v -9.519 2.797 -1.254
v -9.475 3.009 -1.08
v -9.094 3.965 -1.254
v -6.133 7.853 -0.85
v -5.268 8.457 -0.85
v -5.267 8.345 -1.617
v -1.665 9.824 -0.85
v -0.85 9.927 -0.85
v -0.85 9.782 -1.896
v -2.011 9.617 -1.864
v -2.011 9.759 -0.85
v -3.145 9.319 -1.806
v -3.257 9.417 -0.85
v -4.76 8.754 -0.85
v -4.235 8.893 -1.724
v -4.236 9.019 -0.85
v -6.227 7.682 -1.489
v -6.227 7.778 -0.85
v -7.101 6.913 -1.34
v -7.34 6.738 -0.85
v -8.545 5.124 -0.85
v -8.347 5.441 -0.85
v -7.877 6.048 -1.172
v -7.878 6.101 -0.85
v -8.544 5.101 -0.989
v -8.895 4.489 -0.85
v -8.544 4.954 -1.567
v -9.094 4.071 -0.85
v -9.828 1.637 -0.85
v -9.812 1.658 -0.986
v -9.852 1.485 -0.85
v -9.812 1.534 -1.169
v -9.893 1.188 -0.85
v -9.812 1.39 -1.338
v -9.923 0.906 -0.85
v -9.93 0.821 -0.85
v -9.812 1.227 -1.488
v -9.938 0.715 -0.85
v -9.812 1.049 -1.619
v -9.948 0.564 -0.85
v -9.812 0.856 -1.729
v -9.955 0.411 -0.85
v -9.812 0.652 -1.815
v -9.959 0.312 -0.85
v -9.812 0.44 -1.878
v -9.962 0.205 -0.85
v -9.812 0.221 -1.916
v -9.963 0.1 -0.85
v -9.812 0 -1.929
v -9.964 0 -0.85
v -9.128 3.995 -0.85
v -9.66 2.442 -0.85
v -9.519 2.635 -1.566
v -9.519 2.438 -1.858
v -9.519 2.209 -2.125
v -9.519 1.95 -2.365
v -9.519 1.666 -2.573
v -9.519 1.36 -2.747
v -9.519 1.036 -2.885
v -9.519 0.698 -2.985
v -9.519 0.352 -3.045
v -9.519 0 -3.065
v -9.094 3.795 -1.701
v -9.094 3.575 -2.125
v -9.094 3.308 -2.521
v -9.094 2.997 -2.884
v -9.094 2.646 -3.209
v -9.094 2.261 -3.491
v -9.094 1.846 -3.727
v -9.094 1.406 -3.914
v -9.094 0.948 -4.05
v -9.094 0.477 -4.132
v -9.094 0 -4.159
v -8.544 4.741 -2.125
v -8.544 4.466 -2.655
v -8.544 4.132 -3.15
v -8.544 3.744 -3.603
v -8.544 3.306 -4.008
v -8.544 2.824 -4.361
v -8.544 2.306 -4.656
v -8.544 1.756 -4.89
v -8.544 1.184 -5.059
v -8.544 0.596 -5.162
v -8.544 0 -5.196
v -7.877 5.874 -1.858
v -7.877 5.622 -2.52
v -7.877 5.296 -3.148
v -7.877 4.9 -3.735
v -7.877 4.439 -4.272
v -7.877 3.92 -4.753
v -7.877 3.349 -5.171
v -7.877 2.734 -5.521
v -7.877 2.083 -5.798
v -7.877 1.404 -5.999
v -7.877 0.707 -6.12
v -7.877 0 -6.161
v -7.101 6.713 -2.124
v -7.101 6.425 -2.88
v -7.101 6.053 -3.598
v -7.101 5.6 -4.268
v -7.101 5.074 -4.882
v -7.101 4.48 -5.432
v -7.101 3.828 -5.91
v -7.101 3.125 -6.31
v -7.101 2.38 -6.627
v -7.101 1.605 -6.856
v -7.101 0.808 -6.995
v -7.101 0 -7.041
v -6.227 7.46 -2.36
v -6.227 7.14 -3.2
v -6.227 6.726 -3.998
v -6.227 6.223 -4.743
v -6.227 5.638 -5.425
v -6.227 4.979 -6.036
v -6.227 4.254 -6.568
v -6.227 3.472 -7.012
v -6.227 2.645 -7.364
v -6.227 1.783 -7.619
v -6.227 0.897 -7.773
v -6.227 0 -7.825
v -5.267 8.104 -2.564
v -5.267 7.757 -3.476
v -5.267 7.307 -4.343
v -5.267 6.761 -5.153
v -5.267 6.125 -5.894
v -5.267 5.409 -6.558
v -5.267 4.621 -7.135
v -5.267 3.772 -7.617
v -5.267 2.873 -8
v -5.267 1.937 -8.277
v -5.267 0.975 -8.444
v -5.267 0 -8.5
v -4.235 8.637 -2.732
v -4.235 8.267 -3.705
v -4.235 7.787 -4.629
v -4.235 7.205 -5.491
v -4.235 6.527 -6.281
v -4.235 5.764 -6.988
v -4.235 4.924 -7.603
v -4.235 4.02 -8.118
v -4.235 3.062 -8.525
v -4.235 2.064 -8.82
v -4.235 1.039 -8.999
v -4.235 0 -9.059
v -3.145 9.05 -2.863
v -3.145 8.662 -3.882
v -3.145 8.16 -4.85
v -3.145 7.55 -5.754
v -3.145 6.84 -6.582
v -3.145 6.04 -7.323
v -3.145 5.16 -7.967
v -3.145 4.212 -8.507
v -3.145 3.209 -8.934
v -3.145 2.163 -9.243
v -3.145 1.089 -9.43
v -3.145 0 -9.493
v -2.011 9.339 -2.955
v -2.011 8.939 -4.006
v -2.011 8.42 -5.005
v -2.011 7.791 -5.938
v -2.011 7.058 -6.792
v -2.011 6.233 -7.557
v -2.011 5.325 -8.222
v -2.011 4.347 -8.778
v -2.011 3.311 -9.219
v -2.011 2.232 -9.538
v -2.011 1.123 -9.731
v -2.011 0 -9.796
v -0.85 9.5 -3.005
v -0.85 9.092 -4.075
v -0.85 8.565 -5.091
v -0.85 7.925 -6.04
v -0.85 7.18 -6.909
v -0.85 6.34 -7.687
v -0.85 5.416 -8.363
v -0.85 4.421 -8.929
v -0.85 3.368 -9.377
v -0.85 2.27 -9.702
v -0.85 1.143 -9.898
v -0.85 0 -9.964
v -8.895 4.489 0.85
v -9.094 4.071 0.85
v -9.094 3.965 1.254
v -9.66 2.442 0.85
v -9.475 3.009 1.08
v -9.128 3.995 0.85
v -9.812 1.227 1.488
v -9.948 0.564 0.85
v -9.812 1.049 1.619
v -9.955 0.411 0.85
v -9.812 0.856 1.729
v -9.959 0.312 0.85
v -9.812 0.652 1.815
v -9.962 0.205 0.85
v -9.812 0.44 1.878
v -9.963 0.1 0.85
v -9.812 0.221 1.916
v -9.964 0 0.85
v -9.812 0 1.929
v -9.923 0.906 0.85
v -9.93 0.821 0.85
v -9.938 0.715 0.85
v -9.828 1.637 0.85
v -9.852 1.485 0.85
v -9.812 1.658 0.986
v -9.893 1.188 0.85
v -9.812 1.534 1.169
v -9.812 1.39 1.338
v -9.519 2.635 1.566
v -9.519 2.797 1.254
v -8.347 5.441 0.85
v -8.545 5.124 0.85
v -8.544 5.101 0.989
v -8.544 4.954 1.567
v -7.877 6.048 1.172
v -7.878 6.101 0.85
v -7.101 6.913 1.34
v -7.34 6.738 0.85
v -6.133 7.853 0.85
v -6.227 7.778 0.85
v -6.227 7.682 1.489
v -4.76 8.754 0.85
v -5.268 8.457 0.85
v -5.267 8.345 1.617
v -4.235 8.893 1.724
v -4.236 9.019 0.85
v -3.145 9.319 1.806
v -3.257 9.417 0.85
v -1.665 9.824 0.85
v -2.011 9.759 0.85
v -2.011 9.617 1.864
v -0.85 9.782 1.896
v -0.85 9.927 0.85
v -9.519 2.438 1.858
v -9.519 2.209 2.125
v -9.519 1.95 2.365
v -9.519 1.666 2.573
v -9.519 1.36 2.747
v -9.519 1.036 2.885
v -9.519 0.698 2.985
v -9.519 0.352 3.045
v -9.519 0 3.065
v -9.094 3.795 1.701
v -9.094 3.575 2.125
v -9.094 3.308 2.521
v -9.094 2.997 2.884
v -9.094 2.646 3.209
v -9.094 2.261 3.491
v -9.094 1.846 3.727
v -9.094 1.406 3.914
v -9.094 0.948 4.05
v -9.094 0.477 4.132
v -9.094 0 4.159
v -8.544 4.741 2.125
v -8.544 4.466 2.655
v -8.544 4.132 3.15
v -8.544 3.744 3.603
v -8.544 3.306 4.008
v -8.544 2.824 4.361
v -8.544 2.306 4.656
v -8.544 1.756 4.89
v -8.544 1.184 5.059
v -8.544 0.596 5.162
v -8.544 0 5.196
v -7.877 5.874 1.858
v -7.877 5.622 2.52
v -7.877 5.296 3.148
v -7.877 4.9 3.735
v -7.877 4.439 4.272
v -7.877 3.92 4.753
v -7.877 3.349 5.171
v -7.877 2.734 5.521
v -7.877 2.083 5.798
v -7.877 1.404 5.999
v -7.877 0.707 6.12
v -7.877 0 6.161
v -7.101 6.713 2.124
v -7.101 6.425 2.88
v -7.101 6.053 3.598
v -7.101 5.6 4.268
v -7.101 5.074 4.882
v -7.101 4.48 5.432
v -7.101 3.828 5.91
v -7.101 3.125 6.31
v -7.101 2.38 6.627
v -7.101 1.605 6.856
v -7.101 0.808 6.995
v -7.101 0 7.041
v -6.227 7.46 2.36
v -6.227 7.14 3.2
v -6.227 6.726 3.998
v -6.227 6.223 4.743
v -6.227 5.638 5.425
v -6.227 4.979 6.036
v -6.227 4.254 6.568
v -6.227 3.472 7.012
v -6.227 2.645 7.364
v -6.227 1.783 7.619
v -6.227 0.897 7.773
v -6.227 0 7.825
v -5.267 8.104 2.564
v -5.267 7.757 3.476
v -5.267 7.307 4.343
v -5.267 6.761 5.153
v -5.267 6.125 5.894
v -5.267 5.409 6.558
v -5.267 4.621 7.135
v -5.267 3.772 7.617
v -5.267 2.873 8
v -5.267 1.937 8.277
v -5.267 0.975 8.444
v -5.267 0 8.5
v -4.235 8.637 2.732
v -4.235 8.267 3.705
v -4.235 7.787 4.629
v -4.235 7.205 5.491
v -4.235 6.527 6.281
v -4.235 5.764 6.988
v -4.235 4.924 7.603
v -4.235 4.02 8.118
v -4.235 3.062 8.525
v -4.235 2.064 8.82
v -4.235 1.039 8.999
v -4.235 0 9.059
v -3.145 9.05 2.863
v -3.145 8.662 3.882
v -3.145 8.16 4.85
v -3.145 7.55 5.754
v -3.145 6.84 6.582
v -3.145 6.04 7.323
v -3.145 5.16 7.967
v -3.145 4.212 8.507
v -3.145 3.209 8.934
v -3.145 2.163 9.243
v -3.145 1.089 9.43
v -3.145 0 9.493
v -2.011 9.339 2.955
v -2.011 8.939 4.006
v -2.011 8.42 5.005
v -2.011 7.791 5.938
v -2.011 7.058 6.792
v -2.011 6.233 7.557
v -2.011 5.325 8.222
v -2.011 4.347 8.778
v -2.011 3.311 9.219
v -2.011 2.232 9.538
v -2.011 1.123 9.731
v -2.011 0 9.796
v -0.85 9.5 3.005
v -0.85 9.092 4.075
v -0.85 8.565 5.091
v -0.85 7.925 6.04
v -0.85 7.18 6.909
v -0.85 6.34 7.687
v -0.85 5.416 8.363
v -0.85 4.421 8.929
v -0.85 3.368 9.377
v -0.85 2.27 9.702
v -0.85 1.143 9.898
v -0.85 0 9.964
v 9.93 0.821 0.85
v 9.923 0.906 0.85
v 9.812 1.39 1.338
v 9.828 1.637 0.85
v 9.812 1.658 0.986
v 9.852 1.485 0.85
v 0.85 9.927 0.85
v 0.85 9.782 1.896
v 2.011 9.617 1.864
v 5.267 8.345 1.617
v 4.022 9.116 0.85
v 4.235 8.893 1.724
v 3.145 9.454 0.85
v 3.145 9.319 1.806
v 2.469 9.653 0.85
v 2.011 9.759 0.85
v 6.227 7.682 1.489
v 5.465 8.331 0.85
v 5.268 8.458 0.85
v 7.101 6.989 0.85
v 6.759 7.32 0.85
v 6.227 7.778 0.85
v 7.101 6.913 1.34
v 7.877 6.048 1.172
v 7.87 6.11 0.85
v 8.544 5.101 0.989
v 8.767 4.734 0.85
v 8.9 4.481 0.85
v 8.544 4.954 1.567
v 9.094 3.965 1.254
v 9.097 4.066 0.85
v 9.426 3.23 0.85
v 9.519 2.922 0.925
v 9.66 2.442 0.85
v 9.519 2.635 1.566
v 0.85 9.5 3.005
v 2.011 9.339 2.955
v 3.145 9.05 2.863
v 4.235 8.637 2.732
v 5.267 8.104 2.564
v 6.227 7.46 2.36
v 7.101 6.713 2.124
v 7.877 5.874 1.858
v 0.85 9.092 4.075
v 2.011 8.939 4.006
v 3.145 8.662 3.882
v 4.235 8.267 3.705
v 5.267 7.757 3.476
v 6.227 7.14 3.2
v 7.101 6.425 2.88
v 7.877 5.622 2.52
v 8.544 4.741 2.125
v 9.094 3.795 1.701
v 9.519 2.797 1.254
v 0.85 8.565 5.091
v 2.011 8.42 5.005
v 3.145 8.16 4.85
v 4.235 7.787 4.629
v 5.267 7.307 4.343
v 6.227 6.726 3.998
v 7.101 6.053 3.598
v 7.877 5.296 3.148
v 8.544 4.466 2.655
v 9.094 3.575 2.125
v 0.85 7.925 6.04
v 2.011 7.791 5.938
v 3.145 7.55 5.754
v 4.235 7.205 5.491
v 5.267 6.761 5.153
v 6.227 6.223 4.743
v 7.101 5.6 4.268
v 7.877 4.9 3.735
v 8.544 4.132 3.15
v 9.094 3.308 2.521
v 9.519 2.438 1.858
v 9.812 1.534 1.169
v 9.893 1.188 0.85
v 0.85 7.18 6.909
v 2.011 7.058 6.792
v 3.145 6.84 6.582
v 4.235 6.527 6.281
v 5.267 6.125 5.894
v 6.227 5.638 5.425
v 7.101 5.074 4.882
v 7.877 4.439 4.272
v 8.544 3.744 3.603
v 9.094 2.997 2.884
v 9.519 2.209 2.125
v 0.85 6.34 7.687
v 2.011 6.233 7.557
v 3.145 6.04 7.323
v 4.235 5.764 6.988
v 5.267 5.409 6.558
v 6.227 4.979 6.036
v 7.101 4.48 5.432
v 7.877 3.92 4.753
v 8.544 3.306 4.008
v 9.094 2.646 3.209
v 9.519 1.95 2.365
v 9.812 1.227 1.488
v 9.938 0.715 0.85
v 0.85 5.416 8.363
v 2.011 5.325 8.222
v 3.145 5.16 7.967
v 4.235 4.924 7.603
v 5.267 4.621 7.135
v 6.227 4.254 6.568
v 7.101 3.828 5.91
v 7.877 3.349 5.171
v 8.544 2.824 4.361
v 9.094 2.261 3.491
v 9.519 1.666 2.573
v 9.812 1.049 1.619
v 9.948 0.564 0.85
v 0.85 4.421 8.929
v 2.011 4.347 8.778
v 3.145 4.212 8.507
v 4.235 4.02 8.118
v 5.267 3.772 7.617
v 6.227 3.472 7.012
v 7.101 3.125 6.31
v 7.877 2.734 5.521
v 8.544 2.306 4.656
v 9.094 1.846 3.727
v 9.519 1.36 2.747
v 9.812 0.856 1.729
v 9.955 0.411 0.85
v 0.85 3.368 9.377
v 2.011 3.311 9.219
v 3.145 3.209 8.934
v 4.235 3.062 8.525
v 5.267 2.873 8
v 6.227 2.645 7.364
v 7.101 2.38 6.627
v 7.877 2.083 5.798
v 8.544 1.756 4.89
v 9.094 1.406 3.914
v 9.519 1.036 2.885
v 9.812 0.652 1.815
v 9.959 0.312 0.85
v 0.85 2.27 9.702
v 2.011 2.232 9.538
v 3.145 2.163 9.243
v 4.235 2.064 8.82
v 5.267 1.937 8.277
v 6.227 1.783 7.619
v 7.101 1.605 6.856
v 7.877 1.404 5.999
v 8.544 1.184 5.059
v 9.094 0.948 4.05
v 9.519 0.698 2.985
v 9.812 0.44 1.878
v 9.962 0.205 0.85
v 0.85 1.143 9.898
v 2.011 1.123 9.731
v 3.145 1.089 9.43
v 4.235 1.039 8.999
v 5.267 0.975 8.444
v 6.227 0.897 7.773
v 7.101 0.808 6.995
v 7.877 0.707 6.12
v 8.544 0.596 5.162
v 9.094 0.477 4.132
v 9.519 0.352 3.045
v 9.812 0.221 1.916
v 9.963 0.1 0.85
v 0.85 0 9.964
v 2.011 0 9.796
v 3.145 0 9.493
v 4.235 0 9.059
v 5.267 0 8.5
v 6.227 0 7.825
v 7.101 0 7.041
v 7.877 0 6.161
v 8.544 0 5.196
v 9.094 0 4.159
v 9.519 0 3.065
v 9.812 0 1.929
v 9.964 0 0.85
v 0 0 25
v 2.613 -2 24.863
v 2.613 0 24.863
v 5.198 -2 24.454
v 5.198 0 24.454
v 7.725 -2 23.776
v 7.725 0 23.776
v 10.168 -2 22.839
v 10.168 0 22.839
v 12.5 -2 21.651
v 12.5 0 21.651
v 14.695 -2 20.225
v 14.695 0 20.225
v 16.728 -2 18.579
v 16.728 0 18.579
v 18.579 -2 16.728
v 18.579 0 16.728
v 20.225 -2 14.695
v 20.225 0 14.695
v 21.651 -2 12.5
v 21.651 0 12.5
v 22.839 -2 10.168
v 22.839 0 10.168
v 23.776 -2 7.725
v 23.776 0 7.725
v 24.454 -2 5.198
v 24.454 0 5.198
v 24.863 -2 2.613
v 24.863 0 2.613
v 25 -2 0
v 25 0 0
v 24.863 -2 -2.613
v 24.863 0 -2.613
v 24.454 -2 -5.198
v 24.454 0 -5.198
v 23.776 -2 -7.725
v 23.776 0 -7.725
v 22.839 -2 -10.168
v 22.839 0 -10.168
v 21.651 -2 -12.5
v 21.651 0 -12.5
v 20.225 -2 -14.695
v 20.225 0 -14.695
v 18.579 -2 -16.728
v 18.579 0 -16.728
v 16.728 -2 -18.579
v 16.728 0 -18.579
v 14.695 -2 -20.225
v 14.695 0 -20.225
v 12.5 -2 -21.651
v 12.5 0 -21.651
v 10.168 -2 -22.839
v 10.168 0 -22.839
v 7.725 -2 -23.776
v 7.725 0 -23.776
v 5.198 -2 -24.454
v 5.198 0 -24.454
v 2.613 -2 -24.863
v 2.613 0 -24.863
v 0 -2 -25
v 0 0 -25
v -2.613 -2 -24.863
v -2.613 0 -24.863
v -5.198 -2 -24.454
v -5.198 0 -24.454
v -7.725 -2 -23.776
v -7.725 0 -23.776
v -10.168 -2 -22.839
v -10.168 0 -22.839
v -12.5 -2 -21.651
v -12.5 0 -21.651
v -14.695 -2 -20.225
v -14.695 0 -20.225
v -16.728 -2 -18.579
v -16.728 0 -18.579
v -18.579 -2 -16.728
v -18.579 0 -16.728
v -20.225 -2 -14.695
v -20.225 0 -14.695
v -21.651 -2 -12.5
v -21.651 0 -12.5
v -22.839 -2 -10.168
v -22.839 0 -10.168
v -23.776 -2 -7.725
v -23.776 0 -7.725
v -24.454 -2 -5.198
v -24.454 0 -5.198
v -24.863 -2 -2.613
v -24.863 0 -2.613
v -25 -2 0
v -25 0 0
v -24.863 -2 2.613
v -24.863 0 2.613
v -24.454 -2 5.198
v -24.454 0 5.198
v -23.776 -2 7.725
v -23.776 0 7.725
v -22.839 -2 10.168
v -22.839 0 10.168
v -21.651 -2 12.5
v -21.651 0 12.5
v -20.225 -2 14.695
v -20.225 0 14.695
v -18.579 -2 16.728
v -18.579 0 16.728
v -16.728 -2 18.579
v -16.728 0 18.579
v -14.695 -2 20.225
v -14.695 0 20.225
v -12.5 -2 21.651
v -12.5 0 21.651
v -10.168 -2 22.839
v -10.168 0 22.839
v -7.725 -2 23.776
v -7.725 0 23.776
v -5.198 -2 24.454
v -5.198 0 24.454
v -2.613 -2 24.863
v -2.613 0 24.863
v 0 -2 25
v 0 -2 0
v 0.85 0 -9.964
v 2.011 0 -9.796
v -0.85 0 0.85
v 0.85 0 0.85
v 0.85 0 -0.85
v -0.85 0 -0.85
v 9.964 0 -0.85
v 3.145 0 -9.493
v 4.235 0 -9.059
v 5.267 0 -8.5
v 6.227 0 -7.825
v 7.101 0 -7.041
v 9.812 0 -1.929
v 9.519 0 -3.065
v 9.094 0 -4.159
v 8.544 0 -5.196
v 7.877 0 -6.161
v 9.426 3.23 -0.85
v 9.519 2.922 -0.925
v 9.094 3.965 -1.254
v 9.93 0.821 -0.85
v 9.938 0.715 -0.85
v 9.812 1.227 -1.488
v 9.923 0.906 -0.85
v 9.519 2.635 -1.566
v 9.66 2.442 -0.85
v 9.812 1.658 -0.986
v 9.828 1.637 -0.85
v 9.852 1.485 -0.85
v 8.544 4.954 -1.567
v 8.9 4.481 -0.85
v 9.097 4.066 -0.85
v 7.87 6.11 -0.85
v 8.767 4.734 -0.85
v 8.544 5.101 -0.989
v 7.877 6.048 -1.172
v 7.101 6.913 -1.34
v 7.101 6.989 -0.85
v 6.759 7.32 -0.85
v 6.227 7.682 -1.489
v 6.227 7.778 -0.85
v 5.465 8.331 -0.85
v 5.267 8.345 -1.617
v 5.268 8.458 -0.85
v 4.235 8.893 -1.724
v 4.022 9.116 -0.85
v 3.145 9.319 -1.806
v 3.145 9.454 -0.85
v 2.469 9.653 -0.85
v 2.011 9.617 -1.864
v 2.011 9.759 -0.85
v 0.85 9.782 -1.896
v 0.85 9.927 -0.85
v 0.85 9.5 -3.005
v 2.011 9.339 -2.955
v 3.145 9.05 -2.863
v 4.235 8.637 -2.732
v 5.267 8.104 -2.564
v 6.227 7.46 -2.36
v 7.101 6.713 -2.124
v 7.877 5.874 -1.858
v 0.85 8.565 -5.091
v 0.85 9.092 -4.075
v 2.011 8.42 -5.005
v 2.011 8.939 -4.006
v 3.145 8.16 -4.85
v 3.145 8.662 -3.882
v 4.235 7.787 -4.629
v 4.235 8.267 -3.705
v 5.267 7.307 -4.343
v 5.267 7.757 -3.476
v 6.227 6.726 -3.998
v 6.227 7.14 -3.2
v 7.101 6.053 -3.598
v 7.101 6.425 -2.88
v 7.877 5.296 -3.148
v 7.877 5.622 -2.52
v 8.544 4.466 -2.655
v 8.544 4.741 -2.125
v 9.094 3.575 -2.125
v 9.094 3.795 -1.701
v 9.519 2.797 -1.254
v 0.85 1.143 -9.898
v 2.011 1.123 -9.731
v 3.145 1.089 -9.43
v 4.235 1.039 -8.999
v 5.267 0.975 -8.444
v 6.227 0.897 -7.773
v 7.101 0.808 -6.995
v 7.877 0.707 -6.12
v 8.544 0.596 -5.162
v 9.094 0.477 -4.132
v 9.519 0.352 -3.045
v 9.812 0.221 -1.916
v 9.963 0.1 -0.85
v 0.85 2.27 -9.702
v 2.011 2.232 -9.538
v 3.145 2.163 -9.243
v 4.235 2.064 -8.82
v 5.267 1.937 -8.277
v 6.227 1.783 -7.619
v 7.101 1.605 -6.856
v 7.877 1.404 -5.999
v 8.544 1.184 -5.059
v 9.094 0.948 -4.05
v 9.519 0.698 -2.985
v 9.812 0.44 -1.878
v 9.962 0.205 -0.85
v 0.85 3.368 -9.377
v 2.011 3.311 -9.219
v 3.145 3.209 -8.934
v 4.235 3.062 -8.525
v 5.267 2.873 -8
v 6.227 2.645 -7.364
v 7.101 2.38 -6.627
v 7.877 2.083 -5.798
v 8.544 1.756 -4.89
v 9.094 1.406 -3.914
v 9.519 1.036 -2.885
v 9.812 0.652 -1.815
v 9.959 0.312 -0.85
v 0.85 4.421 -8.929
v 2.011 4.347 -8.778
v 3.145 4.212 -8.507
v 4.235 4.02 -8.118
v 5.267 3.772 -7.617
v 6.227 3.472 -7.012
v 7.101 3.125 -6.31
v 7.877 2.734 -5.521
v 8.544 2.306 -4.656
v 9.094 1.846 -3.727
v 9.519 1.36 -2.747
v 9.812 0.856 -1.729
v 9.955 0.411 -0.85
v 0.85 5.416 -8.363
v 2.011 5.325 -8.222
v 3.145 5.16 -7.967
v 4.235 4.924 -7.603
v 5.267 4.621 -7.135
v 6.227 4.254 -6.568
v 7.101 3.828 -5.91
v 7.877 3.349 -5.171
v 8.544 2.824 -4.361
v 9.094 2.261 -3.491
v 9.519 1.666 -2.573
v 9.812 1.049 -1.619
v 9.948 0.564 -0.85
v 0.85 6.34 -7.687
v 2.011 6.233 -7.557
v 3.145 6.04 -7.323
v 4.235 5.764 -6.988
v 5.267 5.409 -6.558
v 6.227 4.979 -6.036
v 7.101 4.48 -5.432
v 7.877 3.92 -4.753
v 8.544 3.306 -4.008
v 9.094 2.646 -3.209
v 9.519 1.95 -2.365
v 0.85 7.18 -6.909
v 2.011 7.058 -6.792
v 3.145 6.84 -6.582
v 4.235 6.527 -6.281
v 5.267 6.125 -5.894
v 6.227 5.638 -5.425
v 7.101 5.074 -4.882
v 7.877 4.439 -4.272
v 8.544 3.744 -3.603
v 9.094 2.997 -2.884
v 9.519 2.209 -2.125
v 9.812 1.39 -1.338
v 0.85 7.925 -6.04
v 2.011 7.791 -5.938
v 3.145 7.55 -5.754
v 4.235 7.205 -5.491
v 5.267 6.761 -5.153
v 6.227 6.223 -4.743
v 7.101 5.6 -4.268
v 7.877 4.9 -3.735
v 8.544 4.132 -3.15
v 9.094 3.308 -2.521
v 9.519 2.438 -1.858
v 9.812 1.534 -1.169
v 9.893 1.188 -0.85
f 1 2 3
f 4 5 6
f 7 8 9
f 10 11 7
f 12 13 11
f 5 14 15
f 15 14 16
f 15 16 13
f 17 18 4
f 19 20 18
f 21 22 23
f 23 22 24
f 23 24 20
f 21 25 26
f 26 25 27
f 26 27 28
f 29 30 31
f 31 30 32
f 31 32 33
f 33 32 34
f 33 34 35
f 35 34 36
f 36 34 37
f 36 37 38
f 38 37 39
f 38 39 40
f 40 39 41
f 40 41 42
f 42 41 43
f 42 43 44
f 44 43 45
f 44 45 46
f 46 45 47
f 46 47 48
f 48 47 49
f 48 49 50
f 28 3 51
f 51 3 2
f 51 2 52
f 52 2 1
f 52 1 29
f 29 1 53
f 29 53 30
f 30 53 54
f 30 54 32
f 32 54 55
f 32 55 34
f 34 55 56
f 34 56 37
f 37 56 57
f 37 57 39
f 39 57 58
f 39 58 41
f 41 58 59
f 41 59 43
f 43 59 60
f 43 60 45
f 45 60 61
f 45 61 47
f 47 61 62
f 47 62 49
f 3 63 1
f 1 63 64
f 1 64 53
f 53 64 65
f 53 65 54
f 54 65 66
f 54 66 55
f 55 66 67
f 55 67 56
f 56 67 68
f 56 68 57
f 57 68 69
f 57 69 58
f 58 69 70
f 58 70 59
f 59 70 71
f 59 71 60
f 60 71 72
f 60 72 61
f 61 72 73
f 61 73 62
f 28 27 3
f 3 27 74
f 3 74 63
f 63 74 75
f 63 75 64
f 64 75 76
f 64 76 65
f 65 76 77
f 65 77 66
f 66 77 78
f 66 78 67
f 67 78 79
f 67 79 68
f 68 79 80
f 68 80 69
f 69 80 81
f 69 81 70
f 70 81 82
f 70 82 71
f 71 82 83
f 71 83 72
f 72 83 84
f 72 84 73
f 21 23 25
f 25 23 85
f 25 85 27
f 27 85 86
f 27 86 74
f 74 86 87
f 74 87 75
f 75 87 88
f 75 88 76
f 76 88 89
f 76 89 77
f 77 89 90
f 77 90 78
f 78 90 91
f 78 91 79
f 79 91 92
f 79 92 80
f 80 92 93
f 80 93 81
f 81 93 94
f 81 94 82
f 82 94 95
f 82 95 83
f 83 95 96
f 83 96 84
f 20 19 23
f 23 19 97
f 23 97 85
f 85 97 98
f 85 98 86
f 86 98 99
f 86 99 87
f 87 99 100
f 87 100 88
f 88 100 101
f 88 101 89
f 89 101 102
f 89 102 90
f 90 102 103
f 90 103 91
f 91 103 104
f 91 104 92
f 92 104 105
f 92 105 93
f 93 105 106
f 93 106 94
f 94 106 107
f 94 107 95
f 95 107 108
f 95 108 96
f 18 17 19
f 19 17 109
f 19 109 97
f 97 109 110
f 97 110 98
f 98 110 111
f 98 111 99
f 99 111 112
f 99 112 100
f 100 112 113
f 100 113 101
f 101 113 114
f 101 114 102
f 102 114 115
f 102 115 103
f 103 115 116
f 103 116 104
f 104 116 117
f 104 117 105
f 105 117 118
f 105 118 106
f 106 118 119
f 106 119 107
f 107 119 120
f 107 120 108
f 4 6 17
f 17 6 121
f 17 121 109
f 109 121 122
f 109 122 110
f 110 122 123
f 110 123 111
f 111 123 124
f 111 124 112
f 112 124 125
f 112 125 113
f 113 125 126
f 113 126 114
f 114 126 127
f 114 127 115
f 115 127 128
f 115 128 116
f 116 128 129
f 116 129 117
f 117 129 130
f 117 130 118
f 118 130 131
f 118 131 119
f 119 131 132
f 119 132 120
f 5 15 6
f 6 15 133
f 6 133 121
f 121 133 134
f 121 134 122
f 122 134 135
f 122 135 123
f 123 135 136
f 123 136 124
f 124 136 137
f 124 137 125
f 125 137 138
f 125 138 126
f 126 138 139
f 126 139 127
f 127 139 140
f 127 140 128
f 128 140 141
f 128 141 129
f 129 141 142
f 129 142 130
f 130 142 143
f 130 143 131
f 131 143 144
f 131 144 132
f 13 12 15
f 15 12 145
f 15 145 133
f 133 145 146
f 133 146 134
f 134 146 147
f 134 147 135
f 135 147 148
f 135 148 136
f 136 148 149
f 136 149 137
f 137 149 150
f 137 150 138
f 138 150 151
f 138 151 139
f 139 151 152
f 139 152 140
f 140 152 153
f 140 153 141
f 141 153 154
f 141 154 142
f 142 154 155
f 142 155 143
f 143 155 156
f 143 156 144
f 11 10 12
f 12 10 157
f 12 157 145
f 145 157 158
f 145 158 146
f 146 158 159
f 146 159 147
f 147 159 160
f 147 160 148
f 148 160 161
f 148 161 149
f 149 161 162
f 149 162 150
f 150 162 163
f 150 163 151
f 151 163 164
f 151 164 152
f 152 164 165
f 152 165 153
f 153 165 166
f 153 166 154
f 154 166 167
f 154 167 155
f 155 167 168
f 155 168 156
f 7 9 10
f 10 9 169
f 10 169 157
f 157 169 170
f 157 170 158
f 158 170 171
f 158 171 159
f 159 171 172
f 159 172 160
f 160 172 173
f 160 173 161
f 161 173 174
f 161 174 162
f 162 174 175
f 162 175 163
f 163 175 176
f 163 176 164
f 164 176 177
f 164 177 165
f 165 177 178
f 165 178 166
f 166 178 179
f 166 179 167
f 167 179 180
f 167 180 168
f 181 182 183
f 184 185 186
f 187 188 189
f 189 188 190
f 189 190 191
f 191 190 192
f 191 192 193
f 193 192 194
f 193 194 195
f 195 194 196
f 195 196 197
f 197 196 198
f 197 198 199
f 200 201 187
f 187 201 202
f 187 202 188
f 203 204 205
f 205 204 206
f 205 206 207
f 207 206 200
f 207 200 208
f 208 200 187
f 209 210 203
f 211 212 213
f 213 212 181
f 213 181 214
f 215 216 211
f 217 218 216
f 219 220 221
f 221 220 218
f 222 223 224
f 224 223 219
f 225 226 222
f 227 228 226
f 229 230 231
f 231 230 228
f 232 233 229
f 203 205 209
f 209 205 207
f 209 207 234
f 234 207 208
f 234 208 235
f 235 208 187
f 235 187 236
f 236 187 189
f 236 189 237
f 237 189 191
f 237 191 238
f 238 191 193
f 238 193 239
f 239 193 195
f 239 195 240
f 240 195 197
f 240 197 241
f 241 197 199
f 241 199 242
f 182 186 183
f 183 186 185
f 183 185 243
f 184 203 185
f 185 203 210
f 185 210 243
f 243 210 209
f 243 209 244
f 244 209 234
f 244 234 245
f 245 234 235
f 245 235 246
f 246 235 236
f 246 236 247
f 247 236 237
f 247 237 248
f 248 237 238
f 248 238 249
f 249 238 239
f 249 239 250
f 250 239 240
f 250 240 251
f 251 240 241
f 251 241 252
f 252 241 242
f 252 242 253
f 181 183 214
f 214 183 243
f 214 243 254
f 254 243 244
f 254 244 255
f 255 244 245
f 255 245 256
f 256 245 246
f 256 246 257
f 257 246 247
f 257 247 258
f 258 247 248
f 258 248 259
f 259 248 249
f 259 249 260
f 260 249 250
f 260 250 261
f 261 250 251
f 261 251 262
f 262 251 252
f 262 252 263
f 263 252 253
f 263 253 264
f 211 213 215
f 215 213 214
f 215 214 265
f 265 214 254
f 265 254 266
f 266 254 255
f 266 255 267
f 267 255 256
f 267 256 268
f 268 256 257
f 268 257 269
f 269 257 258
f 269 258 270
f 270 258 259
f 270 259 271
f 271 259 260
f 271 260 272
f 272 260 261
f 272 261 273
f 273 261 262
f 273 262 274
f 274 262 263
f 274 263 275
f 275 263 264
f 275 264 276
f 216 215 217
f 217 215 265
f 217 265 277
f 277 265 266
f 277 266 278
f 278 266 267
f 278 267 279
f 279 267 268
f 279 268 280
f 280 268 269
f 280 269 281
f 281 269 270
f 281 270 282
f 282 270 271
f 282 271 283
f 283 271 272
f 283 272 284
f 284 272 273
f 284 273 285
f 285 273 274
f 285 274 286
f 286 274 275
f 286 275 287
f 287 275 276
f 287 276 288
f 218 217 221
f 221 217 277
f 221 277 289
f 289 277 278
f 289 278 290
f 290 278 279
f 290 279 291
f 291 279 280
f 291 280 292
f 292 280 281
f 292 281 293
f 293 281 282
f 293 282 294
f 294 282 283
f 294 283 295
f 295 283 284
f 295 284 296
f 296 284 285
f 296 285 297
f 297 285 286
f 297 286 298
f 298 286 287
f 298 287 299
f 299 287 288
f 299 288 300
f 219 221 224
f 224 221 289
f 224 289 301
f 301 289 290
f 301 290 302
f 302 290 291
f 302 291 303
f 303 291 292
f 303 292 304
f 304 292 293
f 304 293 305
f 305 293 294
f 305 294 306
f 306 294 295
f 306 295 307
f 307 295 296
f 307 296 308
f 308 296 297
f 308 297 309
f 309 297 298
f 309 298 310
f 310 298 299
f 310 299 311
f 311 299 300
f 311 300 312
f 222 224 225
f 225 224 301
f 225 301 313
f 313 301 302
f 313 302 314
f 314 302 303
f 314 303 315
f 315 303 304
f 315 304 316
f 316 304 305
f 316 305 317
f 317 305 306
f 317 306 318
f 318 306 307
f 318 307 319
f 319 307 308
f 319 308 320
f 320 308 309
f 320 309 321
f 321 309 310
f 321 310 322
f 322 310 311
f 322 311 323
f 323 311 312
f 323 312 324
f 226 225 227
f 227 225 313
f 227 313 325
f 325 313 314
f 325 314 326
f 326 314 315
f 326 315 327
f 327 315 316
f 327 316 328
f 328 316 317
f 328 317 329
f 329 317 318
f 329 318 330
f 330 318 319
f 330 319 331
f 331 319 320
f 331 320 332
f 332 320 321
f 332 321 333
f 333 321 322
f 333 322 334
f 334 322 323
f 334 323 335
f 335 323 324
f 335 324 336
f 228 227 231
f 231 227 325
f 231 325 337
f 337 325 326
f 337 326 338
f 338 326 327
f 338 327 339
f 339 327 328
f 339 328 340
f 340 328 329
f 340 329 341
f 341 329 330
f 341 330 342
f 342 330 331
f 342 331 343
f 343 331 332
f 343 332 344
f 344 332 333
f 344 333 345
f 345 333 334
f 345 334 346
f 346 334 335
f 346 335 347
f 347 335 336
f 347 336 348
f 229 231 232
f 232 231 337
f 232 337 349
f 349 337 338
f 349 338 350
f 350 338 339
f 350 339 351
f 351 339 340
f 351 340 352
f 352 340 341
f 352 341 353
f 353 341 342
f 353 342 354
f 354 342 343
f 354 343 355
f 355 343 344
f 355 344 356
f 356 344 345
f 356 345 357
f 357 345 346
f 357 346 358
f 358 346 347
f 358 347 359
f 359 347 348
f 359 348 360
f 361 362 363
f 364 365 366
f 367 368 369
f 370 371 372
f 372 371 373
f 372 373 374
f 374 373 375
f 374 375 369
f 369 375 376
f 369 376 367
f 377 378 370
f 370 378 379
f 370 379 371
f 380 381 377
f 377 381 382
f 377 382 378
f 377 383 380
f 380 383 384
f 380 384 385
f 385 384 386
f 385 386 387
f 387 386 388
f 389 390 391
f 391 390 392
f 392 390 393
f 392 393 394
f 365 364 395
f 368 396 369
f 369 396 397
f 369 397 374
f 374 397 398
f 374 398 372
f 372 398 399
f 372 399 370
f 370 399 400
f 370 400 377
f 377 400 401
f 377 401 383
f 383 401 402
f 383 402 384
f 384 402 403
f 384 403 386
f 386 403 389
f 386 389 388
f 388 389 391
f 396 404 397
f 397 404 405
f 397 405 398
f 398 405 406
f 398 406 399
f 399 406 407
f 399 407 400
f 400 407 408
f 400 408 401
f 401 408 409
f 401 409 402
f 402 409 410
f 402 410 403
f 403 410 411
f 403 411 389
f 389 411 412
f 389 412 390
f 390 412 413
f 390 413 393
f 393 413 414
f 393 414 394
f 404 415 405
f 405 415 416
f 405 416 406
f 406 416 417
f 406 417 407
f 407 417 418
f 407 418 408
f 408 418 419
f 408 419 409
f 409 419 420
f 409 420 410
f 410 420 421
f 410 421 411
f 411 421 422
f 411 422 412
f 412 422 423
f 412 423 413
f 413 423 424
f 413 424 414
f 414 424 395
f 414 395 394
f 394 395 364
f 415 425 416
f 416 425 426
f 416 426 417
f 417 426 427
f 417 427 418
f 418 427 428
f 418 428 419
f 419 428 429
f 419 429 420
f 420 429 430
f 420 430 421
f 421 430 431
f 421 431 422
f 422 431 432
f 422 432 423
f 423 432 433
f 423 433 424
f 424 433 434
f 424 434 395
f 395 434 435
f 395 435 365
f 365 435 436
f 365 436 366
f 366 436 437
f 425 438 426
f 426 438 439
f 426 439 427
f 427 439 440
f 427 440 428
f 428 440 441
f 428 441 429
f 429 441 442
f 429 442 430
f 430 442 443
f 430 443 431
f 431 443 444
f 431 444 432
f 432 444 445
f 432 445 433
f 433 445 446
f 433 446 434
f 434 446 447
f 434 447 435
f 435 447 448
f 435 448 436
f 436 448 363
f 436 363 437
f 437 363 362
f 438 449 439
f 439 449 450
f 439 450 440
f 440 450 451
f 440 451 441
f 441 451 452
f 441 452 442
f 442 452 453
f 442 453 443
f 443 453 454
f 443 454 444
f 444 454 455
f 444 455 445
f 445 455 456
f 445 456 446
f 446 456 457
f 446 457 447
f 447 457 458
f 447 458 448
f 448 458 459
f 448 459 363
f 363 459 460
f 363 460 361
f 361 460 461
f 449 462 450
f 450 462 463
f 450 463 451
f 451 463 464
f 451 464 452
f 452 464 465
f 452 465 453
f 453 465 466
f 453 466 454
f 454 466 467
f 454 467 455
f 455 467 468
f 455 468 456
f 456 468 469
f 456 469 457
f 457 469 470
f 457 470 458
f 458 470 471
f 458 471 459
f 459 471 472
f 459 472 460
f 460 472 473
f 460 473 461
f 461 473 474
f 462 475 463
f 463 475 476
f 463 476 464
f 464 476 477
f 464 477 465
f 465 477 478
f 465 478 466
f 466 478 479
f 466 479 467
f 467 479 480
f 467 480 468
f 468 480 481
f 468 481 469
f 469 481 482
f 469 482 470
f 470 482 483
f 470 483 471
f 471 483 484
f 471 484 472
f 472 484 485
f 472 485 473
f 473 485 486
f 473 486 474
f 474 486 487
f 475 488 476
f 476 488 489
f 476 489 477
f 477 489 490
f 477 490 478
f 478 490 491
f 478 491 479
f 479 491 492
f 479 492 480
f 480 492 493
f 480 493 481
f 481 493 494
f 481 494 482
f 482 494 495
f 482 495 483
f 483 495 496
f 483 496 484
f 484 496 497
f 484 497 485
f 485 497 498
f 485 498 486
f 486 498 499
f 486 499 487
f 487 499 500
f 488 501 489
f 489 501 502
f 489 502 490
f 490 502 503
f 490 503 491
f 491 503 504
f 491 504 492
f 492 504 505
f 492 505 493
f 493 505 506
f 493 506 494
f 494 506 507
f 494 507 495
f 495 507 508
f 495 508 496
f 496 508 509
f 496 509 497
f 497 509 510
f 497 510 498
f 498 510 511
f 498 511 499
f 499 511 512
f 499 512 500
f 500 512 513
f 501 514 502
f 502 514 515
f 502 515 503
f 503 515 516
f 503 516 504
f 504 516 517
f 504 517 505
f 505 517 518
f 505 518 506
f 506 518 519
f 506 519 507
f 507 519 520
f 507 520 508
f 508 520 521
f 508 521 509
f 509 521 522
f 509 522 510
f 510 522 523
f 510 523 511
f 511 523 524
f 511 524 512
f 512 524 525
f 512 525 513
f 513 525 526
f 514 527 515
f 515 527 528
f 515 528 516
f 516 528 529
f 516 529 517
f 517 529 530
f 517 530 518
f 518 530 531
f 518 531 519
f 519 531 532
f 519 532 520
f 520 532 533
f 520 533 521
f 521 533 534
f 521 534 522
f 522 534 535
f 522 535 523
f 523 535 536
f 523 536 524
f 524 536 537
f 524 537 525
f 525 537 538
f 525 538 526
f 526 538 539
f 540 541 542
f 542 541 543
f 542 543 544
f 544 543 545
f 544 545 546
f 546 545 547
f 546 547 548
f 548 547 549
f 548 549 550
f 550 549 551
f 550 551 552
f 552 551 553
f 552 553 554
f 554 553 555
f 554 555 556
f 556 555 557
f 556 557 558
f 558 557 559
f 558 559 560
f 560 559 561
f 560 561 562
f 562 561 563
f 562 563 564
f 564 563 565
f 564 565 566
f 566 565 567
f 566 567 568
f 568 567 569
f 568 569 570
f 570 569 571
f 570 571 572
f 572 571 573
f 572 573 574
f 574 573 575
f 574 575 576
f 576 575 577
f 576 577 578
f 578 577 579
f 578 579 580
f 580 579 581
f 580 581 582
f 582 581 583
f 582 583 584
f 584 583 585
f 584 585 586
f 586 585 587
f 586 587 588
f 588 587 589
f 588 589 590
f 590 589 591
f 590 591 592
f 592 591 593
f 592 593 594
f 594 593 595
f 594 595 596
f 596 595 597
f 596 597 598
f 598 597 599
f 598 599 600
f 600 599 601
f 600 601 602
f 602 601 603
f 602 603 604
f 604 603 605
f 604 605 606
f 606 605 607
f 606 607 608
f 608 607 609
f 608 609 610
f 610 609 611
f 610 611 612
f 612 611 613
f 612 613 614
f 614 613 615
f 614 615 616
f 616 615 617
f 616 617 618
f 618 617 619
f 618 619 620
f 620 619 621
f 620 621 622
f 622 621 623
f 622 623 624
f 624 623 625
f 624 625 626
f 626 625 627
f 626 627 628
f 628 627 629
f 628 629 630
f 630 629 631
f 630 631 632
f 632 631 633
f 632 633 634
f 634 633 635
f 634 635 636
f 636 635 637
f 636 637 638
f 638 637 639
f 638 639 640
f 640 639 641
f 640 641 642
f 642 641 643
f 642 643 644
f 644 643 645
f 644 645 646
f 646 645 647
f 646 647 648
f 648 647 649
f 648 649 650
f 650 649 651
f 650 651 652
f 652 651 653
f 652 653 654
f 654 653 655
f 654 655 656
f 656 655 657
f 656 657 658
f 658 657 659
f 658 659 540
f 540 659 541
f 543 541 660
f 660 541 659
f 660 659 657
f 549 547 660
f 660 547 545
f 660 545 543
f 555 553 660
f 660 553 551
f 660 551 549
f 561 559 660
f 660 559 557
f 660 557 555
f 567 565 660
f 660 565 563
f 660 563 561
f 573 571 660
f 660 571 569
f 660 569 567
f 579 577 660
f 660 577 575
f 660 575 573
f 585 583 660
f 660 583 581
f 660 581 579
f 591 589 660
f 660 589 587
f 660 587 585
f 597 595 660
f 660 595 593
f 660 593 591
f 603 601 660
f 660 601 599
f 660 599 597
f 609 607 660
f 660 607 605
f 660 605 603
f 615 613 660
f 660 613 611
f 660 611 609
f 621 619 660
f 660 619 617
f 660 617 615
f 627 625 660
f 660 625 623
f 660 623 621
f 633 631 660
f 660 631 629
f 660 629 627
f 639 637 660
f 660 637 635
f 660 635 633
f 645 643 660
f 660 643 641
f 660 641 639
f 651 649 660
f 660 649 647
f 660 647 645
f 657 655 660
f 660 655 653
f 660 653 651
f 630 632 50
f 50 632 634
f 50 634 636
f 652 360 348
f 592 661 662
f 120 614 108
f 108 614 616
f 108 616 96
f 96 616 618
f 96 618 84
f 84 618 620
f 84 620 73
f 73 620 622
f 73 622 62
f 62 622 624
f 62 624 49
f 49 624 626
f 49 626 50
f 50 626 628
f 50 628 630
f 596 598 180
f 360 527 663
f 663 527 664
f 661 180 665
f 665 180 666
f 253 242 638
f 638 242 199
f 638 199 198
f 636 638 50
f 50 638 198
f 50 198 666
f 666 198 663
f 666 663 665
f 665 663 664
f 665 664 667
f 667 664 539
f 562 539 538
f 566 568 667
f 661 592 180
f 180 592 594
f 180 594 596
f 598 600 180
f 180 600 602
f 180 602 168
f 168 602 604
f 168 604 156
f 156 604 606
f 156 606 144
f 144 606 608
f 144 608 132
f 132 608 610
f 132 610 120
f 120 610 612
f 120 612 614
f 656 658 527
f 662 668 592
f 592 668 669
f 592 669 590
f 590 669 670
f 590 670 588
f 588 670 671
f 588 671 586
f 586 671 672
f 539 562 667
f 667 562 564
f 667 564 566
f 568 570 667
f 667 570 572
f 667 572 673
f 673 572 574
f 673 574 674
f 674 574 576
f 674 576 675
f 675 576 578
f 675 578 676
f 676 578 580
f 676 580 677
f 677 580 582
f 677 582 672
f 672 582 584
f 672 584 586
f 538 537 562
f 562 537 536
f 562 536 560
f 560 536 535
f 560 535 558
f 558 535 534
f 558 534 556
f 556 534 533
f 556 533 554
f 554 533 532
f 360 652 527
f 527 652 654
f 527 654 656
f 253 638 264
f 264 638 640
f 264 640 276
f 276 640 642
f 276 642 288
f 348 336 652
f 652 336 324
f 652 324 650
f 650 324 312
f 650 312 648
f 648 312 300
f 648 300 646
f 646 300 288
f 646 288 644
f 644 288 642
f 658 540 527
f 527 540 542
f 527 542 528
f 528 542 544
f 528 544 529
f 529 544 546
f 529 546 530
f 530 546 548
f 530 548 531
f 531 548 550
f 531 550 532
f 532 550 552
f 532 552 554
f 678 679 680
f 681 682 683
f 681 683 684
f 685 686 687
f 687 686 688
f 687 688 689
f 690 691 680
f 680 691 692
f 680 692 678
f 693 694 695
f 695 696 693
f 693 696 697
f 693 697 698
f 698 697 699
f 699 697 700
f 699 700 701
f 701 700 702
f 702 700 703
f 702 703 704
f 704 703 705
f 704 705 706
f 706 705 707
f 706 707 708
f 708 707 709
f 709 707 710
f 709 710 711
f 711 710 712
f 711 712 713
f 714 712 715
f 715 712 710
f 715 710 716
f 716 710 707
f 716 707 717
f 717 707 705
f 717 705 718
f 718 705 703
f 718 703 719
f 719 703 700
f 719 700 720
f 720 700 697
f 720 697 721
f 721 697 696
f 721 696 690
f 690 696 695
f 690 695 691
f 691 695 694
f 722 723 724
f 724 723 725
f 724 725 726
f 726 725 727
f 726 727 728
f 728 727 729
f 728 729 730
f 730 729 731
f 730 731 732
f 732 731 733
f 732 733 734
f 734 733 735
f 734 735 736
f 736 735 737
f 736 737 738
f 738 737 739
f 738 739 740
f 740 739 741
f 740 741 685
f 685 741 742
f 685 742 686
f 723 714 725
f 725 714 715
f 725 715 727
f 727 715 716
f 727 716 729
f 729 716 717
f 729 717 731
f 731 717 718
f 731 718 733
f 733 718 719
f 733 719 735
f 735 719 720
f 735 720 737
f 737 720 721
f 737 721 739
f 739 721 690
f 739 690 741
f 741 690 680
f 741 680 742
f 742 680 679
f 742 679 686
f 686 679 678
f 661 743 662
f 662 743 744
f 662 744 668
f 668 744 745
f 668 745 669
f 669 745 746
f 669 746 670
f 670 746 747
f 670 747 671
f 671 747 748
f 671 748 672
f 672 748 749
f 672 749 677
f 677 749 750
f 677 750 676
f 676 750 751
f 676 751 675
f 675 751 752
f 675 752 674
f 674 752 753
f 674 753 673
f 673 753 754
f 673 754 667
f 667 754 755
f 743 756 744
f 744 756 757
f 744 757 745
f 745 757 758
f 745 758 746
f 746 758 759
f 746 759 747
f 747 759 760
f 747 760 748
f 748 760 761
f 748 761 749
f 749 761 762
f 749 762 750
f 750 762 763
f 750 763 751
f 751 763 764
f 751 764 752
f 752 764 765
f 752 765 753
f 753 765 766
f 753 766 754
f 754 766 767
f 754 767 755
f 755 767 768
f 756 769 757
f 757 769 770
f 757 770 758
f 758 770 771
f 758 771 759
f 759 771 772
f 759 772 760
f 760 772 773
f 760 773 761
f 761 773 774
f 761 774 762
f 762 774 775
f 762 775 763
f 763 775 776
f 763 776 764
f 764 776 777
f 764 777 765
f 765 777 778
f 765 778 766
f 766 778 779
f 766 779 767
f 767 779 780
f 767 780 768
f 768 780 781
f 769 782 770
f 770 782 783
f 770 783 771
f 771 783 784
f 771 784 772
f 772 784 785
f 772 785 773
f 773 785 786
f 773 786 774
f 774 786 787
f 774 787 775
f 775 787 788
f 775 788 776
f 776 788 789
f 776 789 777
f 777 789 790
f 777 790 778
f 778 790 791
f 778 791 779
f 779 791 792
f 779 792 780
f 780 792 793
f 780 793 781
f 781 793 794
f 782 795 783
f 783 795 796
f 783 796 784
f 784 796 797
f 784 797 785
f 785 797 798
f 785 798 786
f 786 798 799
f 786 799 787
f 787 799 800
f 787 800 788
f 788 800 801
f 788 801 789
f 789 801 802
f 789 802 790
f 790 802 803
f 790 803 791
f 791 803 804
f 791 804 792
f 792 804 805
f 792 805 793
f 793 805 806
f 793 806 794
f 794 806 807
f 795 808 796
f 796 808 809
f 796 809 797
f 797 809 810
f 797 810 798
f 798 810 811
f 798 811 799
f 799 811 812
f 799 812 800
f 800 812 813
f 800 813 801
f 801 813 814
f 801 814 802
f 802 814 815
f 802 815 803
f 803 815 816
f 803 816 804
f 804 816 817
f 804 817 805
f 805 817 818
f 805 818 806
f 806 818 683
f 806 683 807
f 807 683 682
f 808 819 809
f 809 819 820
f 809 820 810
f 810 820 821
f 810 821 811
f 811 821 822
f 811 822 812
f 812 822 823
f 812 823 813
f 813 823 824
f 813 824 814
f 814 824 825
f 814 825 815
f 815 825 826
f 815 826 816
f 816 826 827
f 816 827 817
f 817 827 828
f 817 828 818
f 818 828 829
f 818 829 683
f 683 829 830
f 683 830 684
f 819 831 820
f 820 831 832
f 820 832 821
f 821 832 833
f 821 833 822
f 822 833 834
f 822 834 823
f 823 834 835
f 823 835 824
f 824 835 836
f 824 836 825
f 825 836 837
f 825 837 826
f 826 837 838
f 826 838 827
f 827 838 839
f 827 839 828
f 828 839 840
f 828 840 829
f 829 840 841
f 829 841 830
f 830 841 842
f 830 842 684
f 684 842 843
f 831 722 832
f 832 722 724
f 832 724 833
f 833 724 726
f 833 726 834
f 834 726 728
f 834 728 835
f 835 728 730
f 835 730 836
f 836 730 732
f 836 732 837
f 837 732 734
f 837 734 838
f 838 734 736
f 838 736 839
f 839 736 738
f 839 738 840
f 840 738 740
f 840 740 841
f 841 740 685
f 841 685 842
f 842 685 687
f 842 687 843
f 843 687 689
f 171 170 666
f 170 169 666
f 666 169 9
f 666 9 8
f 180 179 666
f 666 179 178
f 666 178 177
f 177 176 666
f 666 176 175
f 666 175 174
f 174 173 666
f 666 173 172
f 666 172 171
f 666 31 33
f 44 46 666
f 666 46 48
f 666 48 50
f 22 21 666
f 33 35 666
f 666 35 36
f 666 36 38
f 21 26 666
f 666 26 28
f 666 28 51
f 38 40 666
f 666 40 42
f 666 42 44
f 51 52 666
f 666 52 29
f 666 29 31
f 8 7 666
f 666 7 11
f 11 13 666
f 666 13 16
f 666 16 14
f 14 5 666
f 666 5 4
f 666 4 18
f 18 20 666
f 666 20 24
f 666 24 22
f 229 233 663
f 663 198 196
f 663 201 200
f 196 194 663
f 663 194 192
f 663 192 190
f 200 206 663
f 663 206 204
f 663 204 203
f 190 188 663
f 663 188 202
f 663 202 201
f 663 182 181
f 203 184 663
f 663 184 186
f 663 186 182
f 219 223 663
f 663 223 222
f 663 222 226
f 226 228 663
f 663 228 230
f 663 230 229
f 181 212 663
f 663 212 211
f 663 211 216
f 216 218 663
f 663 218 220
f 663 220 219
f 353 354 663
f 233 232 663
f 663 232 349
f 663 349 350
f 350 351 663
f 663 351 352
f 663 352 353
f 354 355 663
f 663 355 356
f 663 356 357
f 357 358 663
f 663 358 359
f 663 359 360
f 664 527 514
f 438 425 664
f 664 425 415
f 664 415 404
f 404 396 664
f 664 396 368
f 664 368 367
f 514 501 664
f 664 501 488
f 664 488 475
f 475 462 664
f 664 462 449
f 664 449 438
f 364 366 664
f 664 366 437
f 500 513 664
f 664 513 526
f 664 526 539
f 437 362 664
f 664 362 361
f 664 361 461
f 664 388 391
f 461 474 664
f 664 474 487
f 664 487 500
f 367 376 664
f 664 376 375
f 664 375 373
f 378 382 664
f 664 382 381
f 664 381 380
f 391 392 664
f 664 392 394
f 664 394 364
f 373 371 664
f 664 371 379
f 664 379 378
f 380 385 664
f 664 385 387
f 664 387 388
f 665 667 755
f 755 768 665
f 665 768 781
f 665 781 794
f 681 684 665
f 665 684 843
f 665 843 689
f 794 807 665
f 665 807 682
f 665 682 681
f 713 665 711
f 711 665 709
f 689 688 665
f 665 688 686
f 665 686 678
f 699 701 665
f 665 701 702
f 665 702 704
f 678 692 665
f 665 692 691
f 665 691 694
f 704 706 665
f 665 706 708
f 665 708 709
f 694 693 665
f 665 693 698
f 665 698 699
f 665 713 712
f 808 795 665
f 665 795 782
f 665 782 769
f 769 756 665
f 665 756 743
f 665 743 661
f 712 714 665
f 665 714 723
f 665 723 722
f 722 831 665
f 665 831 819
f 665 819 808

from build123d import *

# Parameters (mm, degrees)
SKETCH1_R           = 25
BOSS_EXTRUDE1_DEPTH = 2
REVOLVE3_ANGLE      = 180
SKETCH7_W           = 1.7
SKETCH7_H           = 1.7
SKETCH7_W_2         = 9.15
SKETCH7_H_2         = 9.15
CUT_EXTRUDE1_DEPTH  = 10


with BuildPart() as part:
    # Sketch1 → Boss-Extrude1 (new body)
    with BuildSketch(Plane(origin=(0, 0, 0), x_dir=(1, 0, 0), z_dir=(0, 1, 0))):
        Circle(SKETCH1_R)
    extrude(amount=-BOSS_EXTRUDE1_DEPTH)

    # Sketch6 → Revolve3 (revolve)
    with BuildSketch(Plane(origin=(0, 0, 0), x_dir=(1, 0, 0), z_dir=(0, 1, 0))):
        with BuildLine():
            Line((-10, 0), (10, 0))
            ThreePointArc((10, 0), (0, 10), (-10, 0))
        make_face()
    revolve(axis=Axis((-10, 0, 0), (1, 0, 0)), revolution_arc=REVOLVE3_ANGLE)

    # Sketch7 → Cut-Extrude1 (cut)
    with BuildSketch(Plane(origin=(0, 0, 0), x_dir=(1, 0, 0), z_dir=(0, 1, 0))):
        Rectangle(SKETCH7_W, SKETCH7_H)
        with Locations((-5.425, 0)):
            Rectangle(SKETCH7_W_2, SKETCH7_H)
        with Locations((0, 5.425)):
            Rectangle(SKETCH7_W, SKETCH7_H_2)
        with Locations((5.425, 0)):
            Rectangle(SKETCH7_W_2, SKETCH7_H)
        with Locations((0, -5.425)):
            Rectangle(SKETCH7_W, SKETCH7_H_2)
    extrude(amount=CUT_EXTRUDE1_DEPTH, mode=Mode.SUBTRACT)


solid = part.part
